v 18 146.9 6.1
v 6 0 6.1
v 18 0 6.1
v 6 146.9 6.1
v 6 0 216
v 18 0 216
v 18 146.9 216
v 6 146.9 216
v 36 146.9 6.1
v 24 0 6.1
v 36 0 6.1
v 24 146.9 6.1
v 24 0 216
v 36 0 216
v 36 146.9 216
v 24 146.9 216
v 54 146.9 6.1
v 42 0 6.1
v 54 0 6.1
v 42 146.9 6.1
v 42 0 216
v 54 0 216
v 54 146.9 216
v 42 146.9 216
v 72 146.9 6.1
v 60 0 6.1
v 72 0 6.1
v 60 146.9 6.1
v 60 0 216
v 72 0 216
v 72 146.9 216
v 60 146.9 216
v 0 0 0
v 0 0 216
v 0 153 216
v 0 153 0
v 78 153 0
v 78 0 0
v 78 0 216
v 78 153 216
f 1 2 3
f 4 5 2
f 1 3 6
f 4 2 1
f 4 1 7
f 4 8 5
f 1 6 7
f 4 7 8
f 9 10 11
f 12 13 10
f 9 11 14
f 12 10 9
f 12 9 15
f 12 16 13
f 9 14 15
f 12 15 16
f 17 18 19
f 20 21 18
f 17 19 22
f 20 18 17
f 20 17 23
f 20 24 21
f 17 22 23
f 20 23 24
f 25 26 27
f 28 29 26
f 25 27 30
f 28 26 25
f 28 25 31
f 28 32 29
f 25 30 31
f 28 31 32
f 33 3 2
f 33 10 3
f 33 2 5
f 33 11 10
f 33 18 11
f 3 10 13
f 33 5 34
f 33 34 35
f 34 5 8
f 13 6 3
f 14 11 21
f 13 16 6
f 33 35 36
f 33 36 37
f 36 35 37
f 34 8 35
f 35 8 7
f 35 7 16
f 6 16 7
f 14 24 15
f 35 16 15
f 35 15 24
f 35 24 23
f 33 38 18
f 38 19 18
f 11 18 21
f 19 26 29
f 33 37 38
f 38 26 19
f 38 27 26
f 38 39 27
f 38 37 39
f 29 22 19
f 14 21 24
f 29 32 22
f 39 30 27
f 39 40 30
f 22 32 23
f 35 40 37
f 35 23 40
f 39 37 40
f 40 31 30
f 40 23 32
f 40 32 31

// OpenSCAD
$fn = 256;
wall = 6;
notebook_width = 12;
notebook_length = 147;
notebook_height = 210;
count = 4;

module notebook() {
  cube([12, 147, 210]);
}

module stand() {
  cube([notebook_width * count + wall * (count + 1), notebook_length + wall, notebook_height + wall]);
}

module notebooks() {
  translate([wall, -0.1, wall + 0.1]) notebook();
  translate([notebook_width + wall * 2, -0.1, wall + 0.1]) notebook();
  translate([notebook_width + wall * 5, -0.1, wall + 0.1]) notebook();
  translate([notebook_width + wall * 8, -0.1, wall + 0.1]) notebook();
}

difference() {
  stand();
  notebooks();
}
